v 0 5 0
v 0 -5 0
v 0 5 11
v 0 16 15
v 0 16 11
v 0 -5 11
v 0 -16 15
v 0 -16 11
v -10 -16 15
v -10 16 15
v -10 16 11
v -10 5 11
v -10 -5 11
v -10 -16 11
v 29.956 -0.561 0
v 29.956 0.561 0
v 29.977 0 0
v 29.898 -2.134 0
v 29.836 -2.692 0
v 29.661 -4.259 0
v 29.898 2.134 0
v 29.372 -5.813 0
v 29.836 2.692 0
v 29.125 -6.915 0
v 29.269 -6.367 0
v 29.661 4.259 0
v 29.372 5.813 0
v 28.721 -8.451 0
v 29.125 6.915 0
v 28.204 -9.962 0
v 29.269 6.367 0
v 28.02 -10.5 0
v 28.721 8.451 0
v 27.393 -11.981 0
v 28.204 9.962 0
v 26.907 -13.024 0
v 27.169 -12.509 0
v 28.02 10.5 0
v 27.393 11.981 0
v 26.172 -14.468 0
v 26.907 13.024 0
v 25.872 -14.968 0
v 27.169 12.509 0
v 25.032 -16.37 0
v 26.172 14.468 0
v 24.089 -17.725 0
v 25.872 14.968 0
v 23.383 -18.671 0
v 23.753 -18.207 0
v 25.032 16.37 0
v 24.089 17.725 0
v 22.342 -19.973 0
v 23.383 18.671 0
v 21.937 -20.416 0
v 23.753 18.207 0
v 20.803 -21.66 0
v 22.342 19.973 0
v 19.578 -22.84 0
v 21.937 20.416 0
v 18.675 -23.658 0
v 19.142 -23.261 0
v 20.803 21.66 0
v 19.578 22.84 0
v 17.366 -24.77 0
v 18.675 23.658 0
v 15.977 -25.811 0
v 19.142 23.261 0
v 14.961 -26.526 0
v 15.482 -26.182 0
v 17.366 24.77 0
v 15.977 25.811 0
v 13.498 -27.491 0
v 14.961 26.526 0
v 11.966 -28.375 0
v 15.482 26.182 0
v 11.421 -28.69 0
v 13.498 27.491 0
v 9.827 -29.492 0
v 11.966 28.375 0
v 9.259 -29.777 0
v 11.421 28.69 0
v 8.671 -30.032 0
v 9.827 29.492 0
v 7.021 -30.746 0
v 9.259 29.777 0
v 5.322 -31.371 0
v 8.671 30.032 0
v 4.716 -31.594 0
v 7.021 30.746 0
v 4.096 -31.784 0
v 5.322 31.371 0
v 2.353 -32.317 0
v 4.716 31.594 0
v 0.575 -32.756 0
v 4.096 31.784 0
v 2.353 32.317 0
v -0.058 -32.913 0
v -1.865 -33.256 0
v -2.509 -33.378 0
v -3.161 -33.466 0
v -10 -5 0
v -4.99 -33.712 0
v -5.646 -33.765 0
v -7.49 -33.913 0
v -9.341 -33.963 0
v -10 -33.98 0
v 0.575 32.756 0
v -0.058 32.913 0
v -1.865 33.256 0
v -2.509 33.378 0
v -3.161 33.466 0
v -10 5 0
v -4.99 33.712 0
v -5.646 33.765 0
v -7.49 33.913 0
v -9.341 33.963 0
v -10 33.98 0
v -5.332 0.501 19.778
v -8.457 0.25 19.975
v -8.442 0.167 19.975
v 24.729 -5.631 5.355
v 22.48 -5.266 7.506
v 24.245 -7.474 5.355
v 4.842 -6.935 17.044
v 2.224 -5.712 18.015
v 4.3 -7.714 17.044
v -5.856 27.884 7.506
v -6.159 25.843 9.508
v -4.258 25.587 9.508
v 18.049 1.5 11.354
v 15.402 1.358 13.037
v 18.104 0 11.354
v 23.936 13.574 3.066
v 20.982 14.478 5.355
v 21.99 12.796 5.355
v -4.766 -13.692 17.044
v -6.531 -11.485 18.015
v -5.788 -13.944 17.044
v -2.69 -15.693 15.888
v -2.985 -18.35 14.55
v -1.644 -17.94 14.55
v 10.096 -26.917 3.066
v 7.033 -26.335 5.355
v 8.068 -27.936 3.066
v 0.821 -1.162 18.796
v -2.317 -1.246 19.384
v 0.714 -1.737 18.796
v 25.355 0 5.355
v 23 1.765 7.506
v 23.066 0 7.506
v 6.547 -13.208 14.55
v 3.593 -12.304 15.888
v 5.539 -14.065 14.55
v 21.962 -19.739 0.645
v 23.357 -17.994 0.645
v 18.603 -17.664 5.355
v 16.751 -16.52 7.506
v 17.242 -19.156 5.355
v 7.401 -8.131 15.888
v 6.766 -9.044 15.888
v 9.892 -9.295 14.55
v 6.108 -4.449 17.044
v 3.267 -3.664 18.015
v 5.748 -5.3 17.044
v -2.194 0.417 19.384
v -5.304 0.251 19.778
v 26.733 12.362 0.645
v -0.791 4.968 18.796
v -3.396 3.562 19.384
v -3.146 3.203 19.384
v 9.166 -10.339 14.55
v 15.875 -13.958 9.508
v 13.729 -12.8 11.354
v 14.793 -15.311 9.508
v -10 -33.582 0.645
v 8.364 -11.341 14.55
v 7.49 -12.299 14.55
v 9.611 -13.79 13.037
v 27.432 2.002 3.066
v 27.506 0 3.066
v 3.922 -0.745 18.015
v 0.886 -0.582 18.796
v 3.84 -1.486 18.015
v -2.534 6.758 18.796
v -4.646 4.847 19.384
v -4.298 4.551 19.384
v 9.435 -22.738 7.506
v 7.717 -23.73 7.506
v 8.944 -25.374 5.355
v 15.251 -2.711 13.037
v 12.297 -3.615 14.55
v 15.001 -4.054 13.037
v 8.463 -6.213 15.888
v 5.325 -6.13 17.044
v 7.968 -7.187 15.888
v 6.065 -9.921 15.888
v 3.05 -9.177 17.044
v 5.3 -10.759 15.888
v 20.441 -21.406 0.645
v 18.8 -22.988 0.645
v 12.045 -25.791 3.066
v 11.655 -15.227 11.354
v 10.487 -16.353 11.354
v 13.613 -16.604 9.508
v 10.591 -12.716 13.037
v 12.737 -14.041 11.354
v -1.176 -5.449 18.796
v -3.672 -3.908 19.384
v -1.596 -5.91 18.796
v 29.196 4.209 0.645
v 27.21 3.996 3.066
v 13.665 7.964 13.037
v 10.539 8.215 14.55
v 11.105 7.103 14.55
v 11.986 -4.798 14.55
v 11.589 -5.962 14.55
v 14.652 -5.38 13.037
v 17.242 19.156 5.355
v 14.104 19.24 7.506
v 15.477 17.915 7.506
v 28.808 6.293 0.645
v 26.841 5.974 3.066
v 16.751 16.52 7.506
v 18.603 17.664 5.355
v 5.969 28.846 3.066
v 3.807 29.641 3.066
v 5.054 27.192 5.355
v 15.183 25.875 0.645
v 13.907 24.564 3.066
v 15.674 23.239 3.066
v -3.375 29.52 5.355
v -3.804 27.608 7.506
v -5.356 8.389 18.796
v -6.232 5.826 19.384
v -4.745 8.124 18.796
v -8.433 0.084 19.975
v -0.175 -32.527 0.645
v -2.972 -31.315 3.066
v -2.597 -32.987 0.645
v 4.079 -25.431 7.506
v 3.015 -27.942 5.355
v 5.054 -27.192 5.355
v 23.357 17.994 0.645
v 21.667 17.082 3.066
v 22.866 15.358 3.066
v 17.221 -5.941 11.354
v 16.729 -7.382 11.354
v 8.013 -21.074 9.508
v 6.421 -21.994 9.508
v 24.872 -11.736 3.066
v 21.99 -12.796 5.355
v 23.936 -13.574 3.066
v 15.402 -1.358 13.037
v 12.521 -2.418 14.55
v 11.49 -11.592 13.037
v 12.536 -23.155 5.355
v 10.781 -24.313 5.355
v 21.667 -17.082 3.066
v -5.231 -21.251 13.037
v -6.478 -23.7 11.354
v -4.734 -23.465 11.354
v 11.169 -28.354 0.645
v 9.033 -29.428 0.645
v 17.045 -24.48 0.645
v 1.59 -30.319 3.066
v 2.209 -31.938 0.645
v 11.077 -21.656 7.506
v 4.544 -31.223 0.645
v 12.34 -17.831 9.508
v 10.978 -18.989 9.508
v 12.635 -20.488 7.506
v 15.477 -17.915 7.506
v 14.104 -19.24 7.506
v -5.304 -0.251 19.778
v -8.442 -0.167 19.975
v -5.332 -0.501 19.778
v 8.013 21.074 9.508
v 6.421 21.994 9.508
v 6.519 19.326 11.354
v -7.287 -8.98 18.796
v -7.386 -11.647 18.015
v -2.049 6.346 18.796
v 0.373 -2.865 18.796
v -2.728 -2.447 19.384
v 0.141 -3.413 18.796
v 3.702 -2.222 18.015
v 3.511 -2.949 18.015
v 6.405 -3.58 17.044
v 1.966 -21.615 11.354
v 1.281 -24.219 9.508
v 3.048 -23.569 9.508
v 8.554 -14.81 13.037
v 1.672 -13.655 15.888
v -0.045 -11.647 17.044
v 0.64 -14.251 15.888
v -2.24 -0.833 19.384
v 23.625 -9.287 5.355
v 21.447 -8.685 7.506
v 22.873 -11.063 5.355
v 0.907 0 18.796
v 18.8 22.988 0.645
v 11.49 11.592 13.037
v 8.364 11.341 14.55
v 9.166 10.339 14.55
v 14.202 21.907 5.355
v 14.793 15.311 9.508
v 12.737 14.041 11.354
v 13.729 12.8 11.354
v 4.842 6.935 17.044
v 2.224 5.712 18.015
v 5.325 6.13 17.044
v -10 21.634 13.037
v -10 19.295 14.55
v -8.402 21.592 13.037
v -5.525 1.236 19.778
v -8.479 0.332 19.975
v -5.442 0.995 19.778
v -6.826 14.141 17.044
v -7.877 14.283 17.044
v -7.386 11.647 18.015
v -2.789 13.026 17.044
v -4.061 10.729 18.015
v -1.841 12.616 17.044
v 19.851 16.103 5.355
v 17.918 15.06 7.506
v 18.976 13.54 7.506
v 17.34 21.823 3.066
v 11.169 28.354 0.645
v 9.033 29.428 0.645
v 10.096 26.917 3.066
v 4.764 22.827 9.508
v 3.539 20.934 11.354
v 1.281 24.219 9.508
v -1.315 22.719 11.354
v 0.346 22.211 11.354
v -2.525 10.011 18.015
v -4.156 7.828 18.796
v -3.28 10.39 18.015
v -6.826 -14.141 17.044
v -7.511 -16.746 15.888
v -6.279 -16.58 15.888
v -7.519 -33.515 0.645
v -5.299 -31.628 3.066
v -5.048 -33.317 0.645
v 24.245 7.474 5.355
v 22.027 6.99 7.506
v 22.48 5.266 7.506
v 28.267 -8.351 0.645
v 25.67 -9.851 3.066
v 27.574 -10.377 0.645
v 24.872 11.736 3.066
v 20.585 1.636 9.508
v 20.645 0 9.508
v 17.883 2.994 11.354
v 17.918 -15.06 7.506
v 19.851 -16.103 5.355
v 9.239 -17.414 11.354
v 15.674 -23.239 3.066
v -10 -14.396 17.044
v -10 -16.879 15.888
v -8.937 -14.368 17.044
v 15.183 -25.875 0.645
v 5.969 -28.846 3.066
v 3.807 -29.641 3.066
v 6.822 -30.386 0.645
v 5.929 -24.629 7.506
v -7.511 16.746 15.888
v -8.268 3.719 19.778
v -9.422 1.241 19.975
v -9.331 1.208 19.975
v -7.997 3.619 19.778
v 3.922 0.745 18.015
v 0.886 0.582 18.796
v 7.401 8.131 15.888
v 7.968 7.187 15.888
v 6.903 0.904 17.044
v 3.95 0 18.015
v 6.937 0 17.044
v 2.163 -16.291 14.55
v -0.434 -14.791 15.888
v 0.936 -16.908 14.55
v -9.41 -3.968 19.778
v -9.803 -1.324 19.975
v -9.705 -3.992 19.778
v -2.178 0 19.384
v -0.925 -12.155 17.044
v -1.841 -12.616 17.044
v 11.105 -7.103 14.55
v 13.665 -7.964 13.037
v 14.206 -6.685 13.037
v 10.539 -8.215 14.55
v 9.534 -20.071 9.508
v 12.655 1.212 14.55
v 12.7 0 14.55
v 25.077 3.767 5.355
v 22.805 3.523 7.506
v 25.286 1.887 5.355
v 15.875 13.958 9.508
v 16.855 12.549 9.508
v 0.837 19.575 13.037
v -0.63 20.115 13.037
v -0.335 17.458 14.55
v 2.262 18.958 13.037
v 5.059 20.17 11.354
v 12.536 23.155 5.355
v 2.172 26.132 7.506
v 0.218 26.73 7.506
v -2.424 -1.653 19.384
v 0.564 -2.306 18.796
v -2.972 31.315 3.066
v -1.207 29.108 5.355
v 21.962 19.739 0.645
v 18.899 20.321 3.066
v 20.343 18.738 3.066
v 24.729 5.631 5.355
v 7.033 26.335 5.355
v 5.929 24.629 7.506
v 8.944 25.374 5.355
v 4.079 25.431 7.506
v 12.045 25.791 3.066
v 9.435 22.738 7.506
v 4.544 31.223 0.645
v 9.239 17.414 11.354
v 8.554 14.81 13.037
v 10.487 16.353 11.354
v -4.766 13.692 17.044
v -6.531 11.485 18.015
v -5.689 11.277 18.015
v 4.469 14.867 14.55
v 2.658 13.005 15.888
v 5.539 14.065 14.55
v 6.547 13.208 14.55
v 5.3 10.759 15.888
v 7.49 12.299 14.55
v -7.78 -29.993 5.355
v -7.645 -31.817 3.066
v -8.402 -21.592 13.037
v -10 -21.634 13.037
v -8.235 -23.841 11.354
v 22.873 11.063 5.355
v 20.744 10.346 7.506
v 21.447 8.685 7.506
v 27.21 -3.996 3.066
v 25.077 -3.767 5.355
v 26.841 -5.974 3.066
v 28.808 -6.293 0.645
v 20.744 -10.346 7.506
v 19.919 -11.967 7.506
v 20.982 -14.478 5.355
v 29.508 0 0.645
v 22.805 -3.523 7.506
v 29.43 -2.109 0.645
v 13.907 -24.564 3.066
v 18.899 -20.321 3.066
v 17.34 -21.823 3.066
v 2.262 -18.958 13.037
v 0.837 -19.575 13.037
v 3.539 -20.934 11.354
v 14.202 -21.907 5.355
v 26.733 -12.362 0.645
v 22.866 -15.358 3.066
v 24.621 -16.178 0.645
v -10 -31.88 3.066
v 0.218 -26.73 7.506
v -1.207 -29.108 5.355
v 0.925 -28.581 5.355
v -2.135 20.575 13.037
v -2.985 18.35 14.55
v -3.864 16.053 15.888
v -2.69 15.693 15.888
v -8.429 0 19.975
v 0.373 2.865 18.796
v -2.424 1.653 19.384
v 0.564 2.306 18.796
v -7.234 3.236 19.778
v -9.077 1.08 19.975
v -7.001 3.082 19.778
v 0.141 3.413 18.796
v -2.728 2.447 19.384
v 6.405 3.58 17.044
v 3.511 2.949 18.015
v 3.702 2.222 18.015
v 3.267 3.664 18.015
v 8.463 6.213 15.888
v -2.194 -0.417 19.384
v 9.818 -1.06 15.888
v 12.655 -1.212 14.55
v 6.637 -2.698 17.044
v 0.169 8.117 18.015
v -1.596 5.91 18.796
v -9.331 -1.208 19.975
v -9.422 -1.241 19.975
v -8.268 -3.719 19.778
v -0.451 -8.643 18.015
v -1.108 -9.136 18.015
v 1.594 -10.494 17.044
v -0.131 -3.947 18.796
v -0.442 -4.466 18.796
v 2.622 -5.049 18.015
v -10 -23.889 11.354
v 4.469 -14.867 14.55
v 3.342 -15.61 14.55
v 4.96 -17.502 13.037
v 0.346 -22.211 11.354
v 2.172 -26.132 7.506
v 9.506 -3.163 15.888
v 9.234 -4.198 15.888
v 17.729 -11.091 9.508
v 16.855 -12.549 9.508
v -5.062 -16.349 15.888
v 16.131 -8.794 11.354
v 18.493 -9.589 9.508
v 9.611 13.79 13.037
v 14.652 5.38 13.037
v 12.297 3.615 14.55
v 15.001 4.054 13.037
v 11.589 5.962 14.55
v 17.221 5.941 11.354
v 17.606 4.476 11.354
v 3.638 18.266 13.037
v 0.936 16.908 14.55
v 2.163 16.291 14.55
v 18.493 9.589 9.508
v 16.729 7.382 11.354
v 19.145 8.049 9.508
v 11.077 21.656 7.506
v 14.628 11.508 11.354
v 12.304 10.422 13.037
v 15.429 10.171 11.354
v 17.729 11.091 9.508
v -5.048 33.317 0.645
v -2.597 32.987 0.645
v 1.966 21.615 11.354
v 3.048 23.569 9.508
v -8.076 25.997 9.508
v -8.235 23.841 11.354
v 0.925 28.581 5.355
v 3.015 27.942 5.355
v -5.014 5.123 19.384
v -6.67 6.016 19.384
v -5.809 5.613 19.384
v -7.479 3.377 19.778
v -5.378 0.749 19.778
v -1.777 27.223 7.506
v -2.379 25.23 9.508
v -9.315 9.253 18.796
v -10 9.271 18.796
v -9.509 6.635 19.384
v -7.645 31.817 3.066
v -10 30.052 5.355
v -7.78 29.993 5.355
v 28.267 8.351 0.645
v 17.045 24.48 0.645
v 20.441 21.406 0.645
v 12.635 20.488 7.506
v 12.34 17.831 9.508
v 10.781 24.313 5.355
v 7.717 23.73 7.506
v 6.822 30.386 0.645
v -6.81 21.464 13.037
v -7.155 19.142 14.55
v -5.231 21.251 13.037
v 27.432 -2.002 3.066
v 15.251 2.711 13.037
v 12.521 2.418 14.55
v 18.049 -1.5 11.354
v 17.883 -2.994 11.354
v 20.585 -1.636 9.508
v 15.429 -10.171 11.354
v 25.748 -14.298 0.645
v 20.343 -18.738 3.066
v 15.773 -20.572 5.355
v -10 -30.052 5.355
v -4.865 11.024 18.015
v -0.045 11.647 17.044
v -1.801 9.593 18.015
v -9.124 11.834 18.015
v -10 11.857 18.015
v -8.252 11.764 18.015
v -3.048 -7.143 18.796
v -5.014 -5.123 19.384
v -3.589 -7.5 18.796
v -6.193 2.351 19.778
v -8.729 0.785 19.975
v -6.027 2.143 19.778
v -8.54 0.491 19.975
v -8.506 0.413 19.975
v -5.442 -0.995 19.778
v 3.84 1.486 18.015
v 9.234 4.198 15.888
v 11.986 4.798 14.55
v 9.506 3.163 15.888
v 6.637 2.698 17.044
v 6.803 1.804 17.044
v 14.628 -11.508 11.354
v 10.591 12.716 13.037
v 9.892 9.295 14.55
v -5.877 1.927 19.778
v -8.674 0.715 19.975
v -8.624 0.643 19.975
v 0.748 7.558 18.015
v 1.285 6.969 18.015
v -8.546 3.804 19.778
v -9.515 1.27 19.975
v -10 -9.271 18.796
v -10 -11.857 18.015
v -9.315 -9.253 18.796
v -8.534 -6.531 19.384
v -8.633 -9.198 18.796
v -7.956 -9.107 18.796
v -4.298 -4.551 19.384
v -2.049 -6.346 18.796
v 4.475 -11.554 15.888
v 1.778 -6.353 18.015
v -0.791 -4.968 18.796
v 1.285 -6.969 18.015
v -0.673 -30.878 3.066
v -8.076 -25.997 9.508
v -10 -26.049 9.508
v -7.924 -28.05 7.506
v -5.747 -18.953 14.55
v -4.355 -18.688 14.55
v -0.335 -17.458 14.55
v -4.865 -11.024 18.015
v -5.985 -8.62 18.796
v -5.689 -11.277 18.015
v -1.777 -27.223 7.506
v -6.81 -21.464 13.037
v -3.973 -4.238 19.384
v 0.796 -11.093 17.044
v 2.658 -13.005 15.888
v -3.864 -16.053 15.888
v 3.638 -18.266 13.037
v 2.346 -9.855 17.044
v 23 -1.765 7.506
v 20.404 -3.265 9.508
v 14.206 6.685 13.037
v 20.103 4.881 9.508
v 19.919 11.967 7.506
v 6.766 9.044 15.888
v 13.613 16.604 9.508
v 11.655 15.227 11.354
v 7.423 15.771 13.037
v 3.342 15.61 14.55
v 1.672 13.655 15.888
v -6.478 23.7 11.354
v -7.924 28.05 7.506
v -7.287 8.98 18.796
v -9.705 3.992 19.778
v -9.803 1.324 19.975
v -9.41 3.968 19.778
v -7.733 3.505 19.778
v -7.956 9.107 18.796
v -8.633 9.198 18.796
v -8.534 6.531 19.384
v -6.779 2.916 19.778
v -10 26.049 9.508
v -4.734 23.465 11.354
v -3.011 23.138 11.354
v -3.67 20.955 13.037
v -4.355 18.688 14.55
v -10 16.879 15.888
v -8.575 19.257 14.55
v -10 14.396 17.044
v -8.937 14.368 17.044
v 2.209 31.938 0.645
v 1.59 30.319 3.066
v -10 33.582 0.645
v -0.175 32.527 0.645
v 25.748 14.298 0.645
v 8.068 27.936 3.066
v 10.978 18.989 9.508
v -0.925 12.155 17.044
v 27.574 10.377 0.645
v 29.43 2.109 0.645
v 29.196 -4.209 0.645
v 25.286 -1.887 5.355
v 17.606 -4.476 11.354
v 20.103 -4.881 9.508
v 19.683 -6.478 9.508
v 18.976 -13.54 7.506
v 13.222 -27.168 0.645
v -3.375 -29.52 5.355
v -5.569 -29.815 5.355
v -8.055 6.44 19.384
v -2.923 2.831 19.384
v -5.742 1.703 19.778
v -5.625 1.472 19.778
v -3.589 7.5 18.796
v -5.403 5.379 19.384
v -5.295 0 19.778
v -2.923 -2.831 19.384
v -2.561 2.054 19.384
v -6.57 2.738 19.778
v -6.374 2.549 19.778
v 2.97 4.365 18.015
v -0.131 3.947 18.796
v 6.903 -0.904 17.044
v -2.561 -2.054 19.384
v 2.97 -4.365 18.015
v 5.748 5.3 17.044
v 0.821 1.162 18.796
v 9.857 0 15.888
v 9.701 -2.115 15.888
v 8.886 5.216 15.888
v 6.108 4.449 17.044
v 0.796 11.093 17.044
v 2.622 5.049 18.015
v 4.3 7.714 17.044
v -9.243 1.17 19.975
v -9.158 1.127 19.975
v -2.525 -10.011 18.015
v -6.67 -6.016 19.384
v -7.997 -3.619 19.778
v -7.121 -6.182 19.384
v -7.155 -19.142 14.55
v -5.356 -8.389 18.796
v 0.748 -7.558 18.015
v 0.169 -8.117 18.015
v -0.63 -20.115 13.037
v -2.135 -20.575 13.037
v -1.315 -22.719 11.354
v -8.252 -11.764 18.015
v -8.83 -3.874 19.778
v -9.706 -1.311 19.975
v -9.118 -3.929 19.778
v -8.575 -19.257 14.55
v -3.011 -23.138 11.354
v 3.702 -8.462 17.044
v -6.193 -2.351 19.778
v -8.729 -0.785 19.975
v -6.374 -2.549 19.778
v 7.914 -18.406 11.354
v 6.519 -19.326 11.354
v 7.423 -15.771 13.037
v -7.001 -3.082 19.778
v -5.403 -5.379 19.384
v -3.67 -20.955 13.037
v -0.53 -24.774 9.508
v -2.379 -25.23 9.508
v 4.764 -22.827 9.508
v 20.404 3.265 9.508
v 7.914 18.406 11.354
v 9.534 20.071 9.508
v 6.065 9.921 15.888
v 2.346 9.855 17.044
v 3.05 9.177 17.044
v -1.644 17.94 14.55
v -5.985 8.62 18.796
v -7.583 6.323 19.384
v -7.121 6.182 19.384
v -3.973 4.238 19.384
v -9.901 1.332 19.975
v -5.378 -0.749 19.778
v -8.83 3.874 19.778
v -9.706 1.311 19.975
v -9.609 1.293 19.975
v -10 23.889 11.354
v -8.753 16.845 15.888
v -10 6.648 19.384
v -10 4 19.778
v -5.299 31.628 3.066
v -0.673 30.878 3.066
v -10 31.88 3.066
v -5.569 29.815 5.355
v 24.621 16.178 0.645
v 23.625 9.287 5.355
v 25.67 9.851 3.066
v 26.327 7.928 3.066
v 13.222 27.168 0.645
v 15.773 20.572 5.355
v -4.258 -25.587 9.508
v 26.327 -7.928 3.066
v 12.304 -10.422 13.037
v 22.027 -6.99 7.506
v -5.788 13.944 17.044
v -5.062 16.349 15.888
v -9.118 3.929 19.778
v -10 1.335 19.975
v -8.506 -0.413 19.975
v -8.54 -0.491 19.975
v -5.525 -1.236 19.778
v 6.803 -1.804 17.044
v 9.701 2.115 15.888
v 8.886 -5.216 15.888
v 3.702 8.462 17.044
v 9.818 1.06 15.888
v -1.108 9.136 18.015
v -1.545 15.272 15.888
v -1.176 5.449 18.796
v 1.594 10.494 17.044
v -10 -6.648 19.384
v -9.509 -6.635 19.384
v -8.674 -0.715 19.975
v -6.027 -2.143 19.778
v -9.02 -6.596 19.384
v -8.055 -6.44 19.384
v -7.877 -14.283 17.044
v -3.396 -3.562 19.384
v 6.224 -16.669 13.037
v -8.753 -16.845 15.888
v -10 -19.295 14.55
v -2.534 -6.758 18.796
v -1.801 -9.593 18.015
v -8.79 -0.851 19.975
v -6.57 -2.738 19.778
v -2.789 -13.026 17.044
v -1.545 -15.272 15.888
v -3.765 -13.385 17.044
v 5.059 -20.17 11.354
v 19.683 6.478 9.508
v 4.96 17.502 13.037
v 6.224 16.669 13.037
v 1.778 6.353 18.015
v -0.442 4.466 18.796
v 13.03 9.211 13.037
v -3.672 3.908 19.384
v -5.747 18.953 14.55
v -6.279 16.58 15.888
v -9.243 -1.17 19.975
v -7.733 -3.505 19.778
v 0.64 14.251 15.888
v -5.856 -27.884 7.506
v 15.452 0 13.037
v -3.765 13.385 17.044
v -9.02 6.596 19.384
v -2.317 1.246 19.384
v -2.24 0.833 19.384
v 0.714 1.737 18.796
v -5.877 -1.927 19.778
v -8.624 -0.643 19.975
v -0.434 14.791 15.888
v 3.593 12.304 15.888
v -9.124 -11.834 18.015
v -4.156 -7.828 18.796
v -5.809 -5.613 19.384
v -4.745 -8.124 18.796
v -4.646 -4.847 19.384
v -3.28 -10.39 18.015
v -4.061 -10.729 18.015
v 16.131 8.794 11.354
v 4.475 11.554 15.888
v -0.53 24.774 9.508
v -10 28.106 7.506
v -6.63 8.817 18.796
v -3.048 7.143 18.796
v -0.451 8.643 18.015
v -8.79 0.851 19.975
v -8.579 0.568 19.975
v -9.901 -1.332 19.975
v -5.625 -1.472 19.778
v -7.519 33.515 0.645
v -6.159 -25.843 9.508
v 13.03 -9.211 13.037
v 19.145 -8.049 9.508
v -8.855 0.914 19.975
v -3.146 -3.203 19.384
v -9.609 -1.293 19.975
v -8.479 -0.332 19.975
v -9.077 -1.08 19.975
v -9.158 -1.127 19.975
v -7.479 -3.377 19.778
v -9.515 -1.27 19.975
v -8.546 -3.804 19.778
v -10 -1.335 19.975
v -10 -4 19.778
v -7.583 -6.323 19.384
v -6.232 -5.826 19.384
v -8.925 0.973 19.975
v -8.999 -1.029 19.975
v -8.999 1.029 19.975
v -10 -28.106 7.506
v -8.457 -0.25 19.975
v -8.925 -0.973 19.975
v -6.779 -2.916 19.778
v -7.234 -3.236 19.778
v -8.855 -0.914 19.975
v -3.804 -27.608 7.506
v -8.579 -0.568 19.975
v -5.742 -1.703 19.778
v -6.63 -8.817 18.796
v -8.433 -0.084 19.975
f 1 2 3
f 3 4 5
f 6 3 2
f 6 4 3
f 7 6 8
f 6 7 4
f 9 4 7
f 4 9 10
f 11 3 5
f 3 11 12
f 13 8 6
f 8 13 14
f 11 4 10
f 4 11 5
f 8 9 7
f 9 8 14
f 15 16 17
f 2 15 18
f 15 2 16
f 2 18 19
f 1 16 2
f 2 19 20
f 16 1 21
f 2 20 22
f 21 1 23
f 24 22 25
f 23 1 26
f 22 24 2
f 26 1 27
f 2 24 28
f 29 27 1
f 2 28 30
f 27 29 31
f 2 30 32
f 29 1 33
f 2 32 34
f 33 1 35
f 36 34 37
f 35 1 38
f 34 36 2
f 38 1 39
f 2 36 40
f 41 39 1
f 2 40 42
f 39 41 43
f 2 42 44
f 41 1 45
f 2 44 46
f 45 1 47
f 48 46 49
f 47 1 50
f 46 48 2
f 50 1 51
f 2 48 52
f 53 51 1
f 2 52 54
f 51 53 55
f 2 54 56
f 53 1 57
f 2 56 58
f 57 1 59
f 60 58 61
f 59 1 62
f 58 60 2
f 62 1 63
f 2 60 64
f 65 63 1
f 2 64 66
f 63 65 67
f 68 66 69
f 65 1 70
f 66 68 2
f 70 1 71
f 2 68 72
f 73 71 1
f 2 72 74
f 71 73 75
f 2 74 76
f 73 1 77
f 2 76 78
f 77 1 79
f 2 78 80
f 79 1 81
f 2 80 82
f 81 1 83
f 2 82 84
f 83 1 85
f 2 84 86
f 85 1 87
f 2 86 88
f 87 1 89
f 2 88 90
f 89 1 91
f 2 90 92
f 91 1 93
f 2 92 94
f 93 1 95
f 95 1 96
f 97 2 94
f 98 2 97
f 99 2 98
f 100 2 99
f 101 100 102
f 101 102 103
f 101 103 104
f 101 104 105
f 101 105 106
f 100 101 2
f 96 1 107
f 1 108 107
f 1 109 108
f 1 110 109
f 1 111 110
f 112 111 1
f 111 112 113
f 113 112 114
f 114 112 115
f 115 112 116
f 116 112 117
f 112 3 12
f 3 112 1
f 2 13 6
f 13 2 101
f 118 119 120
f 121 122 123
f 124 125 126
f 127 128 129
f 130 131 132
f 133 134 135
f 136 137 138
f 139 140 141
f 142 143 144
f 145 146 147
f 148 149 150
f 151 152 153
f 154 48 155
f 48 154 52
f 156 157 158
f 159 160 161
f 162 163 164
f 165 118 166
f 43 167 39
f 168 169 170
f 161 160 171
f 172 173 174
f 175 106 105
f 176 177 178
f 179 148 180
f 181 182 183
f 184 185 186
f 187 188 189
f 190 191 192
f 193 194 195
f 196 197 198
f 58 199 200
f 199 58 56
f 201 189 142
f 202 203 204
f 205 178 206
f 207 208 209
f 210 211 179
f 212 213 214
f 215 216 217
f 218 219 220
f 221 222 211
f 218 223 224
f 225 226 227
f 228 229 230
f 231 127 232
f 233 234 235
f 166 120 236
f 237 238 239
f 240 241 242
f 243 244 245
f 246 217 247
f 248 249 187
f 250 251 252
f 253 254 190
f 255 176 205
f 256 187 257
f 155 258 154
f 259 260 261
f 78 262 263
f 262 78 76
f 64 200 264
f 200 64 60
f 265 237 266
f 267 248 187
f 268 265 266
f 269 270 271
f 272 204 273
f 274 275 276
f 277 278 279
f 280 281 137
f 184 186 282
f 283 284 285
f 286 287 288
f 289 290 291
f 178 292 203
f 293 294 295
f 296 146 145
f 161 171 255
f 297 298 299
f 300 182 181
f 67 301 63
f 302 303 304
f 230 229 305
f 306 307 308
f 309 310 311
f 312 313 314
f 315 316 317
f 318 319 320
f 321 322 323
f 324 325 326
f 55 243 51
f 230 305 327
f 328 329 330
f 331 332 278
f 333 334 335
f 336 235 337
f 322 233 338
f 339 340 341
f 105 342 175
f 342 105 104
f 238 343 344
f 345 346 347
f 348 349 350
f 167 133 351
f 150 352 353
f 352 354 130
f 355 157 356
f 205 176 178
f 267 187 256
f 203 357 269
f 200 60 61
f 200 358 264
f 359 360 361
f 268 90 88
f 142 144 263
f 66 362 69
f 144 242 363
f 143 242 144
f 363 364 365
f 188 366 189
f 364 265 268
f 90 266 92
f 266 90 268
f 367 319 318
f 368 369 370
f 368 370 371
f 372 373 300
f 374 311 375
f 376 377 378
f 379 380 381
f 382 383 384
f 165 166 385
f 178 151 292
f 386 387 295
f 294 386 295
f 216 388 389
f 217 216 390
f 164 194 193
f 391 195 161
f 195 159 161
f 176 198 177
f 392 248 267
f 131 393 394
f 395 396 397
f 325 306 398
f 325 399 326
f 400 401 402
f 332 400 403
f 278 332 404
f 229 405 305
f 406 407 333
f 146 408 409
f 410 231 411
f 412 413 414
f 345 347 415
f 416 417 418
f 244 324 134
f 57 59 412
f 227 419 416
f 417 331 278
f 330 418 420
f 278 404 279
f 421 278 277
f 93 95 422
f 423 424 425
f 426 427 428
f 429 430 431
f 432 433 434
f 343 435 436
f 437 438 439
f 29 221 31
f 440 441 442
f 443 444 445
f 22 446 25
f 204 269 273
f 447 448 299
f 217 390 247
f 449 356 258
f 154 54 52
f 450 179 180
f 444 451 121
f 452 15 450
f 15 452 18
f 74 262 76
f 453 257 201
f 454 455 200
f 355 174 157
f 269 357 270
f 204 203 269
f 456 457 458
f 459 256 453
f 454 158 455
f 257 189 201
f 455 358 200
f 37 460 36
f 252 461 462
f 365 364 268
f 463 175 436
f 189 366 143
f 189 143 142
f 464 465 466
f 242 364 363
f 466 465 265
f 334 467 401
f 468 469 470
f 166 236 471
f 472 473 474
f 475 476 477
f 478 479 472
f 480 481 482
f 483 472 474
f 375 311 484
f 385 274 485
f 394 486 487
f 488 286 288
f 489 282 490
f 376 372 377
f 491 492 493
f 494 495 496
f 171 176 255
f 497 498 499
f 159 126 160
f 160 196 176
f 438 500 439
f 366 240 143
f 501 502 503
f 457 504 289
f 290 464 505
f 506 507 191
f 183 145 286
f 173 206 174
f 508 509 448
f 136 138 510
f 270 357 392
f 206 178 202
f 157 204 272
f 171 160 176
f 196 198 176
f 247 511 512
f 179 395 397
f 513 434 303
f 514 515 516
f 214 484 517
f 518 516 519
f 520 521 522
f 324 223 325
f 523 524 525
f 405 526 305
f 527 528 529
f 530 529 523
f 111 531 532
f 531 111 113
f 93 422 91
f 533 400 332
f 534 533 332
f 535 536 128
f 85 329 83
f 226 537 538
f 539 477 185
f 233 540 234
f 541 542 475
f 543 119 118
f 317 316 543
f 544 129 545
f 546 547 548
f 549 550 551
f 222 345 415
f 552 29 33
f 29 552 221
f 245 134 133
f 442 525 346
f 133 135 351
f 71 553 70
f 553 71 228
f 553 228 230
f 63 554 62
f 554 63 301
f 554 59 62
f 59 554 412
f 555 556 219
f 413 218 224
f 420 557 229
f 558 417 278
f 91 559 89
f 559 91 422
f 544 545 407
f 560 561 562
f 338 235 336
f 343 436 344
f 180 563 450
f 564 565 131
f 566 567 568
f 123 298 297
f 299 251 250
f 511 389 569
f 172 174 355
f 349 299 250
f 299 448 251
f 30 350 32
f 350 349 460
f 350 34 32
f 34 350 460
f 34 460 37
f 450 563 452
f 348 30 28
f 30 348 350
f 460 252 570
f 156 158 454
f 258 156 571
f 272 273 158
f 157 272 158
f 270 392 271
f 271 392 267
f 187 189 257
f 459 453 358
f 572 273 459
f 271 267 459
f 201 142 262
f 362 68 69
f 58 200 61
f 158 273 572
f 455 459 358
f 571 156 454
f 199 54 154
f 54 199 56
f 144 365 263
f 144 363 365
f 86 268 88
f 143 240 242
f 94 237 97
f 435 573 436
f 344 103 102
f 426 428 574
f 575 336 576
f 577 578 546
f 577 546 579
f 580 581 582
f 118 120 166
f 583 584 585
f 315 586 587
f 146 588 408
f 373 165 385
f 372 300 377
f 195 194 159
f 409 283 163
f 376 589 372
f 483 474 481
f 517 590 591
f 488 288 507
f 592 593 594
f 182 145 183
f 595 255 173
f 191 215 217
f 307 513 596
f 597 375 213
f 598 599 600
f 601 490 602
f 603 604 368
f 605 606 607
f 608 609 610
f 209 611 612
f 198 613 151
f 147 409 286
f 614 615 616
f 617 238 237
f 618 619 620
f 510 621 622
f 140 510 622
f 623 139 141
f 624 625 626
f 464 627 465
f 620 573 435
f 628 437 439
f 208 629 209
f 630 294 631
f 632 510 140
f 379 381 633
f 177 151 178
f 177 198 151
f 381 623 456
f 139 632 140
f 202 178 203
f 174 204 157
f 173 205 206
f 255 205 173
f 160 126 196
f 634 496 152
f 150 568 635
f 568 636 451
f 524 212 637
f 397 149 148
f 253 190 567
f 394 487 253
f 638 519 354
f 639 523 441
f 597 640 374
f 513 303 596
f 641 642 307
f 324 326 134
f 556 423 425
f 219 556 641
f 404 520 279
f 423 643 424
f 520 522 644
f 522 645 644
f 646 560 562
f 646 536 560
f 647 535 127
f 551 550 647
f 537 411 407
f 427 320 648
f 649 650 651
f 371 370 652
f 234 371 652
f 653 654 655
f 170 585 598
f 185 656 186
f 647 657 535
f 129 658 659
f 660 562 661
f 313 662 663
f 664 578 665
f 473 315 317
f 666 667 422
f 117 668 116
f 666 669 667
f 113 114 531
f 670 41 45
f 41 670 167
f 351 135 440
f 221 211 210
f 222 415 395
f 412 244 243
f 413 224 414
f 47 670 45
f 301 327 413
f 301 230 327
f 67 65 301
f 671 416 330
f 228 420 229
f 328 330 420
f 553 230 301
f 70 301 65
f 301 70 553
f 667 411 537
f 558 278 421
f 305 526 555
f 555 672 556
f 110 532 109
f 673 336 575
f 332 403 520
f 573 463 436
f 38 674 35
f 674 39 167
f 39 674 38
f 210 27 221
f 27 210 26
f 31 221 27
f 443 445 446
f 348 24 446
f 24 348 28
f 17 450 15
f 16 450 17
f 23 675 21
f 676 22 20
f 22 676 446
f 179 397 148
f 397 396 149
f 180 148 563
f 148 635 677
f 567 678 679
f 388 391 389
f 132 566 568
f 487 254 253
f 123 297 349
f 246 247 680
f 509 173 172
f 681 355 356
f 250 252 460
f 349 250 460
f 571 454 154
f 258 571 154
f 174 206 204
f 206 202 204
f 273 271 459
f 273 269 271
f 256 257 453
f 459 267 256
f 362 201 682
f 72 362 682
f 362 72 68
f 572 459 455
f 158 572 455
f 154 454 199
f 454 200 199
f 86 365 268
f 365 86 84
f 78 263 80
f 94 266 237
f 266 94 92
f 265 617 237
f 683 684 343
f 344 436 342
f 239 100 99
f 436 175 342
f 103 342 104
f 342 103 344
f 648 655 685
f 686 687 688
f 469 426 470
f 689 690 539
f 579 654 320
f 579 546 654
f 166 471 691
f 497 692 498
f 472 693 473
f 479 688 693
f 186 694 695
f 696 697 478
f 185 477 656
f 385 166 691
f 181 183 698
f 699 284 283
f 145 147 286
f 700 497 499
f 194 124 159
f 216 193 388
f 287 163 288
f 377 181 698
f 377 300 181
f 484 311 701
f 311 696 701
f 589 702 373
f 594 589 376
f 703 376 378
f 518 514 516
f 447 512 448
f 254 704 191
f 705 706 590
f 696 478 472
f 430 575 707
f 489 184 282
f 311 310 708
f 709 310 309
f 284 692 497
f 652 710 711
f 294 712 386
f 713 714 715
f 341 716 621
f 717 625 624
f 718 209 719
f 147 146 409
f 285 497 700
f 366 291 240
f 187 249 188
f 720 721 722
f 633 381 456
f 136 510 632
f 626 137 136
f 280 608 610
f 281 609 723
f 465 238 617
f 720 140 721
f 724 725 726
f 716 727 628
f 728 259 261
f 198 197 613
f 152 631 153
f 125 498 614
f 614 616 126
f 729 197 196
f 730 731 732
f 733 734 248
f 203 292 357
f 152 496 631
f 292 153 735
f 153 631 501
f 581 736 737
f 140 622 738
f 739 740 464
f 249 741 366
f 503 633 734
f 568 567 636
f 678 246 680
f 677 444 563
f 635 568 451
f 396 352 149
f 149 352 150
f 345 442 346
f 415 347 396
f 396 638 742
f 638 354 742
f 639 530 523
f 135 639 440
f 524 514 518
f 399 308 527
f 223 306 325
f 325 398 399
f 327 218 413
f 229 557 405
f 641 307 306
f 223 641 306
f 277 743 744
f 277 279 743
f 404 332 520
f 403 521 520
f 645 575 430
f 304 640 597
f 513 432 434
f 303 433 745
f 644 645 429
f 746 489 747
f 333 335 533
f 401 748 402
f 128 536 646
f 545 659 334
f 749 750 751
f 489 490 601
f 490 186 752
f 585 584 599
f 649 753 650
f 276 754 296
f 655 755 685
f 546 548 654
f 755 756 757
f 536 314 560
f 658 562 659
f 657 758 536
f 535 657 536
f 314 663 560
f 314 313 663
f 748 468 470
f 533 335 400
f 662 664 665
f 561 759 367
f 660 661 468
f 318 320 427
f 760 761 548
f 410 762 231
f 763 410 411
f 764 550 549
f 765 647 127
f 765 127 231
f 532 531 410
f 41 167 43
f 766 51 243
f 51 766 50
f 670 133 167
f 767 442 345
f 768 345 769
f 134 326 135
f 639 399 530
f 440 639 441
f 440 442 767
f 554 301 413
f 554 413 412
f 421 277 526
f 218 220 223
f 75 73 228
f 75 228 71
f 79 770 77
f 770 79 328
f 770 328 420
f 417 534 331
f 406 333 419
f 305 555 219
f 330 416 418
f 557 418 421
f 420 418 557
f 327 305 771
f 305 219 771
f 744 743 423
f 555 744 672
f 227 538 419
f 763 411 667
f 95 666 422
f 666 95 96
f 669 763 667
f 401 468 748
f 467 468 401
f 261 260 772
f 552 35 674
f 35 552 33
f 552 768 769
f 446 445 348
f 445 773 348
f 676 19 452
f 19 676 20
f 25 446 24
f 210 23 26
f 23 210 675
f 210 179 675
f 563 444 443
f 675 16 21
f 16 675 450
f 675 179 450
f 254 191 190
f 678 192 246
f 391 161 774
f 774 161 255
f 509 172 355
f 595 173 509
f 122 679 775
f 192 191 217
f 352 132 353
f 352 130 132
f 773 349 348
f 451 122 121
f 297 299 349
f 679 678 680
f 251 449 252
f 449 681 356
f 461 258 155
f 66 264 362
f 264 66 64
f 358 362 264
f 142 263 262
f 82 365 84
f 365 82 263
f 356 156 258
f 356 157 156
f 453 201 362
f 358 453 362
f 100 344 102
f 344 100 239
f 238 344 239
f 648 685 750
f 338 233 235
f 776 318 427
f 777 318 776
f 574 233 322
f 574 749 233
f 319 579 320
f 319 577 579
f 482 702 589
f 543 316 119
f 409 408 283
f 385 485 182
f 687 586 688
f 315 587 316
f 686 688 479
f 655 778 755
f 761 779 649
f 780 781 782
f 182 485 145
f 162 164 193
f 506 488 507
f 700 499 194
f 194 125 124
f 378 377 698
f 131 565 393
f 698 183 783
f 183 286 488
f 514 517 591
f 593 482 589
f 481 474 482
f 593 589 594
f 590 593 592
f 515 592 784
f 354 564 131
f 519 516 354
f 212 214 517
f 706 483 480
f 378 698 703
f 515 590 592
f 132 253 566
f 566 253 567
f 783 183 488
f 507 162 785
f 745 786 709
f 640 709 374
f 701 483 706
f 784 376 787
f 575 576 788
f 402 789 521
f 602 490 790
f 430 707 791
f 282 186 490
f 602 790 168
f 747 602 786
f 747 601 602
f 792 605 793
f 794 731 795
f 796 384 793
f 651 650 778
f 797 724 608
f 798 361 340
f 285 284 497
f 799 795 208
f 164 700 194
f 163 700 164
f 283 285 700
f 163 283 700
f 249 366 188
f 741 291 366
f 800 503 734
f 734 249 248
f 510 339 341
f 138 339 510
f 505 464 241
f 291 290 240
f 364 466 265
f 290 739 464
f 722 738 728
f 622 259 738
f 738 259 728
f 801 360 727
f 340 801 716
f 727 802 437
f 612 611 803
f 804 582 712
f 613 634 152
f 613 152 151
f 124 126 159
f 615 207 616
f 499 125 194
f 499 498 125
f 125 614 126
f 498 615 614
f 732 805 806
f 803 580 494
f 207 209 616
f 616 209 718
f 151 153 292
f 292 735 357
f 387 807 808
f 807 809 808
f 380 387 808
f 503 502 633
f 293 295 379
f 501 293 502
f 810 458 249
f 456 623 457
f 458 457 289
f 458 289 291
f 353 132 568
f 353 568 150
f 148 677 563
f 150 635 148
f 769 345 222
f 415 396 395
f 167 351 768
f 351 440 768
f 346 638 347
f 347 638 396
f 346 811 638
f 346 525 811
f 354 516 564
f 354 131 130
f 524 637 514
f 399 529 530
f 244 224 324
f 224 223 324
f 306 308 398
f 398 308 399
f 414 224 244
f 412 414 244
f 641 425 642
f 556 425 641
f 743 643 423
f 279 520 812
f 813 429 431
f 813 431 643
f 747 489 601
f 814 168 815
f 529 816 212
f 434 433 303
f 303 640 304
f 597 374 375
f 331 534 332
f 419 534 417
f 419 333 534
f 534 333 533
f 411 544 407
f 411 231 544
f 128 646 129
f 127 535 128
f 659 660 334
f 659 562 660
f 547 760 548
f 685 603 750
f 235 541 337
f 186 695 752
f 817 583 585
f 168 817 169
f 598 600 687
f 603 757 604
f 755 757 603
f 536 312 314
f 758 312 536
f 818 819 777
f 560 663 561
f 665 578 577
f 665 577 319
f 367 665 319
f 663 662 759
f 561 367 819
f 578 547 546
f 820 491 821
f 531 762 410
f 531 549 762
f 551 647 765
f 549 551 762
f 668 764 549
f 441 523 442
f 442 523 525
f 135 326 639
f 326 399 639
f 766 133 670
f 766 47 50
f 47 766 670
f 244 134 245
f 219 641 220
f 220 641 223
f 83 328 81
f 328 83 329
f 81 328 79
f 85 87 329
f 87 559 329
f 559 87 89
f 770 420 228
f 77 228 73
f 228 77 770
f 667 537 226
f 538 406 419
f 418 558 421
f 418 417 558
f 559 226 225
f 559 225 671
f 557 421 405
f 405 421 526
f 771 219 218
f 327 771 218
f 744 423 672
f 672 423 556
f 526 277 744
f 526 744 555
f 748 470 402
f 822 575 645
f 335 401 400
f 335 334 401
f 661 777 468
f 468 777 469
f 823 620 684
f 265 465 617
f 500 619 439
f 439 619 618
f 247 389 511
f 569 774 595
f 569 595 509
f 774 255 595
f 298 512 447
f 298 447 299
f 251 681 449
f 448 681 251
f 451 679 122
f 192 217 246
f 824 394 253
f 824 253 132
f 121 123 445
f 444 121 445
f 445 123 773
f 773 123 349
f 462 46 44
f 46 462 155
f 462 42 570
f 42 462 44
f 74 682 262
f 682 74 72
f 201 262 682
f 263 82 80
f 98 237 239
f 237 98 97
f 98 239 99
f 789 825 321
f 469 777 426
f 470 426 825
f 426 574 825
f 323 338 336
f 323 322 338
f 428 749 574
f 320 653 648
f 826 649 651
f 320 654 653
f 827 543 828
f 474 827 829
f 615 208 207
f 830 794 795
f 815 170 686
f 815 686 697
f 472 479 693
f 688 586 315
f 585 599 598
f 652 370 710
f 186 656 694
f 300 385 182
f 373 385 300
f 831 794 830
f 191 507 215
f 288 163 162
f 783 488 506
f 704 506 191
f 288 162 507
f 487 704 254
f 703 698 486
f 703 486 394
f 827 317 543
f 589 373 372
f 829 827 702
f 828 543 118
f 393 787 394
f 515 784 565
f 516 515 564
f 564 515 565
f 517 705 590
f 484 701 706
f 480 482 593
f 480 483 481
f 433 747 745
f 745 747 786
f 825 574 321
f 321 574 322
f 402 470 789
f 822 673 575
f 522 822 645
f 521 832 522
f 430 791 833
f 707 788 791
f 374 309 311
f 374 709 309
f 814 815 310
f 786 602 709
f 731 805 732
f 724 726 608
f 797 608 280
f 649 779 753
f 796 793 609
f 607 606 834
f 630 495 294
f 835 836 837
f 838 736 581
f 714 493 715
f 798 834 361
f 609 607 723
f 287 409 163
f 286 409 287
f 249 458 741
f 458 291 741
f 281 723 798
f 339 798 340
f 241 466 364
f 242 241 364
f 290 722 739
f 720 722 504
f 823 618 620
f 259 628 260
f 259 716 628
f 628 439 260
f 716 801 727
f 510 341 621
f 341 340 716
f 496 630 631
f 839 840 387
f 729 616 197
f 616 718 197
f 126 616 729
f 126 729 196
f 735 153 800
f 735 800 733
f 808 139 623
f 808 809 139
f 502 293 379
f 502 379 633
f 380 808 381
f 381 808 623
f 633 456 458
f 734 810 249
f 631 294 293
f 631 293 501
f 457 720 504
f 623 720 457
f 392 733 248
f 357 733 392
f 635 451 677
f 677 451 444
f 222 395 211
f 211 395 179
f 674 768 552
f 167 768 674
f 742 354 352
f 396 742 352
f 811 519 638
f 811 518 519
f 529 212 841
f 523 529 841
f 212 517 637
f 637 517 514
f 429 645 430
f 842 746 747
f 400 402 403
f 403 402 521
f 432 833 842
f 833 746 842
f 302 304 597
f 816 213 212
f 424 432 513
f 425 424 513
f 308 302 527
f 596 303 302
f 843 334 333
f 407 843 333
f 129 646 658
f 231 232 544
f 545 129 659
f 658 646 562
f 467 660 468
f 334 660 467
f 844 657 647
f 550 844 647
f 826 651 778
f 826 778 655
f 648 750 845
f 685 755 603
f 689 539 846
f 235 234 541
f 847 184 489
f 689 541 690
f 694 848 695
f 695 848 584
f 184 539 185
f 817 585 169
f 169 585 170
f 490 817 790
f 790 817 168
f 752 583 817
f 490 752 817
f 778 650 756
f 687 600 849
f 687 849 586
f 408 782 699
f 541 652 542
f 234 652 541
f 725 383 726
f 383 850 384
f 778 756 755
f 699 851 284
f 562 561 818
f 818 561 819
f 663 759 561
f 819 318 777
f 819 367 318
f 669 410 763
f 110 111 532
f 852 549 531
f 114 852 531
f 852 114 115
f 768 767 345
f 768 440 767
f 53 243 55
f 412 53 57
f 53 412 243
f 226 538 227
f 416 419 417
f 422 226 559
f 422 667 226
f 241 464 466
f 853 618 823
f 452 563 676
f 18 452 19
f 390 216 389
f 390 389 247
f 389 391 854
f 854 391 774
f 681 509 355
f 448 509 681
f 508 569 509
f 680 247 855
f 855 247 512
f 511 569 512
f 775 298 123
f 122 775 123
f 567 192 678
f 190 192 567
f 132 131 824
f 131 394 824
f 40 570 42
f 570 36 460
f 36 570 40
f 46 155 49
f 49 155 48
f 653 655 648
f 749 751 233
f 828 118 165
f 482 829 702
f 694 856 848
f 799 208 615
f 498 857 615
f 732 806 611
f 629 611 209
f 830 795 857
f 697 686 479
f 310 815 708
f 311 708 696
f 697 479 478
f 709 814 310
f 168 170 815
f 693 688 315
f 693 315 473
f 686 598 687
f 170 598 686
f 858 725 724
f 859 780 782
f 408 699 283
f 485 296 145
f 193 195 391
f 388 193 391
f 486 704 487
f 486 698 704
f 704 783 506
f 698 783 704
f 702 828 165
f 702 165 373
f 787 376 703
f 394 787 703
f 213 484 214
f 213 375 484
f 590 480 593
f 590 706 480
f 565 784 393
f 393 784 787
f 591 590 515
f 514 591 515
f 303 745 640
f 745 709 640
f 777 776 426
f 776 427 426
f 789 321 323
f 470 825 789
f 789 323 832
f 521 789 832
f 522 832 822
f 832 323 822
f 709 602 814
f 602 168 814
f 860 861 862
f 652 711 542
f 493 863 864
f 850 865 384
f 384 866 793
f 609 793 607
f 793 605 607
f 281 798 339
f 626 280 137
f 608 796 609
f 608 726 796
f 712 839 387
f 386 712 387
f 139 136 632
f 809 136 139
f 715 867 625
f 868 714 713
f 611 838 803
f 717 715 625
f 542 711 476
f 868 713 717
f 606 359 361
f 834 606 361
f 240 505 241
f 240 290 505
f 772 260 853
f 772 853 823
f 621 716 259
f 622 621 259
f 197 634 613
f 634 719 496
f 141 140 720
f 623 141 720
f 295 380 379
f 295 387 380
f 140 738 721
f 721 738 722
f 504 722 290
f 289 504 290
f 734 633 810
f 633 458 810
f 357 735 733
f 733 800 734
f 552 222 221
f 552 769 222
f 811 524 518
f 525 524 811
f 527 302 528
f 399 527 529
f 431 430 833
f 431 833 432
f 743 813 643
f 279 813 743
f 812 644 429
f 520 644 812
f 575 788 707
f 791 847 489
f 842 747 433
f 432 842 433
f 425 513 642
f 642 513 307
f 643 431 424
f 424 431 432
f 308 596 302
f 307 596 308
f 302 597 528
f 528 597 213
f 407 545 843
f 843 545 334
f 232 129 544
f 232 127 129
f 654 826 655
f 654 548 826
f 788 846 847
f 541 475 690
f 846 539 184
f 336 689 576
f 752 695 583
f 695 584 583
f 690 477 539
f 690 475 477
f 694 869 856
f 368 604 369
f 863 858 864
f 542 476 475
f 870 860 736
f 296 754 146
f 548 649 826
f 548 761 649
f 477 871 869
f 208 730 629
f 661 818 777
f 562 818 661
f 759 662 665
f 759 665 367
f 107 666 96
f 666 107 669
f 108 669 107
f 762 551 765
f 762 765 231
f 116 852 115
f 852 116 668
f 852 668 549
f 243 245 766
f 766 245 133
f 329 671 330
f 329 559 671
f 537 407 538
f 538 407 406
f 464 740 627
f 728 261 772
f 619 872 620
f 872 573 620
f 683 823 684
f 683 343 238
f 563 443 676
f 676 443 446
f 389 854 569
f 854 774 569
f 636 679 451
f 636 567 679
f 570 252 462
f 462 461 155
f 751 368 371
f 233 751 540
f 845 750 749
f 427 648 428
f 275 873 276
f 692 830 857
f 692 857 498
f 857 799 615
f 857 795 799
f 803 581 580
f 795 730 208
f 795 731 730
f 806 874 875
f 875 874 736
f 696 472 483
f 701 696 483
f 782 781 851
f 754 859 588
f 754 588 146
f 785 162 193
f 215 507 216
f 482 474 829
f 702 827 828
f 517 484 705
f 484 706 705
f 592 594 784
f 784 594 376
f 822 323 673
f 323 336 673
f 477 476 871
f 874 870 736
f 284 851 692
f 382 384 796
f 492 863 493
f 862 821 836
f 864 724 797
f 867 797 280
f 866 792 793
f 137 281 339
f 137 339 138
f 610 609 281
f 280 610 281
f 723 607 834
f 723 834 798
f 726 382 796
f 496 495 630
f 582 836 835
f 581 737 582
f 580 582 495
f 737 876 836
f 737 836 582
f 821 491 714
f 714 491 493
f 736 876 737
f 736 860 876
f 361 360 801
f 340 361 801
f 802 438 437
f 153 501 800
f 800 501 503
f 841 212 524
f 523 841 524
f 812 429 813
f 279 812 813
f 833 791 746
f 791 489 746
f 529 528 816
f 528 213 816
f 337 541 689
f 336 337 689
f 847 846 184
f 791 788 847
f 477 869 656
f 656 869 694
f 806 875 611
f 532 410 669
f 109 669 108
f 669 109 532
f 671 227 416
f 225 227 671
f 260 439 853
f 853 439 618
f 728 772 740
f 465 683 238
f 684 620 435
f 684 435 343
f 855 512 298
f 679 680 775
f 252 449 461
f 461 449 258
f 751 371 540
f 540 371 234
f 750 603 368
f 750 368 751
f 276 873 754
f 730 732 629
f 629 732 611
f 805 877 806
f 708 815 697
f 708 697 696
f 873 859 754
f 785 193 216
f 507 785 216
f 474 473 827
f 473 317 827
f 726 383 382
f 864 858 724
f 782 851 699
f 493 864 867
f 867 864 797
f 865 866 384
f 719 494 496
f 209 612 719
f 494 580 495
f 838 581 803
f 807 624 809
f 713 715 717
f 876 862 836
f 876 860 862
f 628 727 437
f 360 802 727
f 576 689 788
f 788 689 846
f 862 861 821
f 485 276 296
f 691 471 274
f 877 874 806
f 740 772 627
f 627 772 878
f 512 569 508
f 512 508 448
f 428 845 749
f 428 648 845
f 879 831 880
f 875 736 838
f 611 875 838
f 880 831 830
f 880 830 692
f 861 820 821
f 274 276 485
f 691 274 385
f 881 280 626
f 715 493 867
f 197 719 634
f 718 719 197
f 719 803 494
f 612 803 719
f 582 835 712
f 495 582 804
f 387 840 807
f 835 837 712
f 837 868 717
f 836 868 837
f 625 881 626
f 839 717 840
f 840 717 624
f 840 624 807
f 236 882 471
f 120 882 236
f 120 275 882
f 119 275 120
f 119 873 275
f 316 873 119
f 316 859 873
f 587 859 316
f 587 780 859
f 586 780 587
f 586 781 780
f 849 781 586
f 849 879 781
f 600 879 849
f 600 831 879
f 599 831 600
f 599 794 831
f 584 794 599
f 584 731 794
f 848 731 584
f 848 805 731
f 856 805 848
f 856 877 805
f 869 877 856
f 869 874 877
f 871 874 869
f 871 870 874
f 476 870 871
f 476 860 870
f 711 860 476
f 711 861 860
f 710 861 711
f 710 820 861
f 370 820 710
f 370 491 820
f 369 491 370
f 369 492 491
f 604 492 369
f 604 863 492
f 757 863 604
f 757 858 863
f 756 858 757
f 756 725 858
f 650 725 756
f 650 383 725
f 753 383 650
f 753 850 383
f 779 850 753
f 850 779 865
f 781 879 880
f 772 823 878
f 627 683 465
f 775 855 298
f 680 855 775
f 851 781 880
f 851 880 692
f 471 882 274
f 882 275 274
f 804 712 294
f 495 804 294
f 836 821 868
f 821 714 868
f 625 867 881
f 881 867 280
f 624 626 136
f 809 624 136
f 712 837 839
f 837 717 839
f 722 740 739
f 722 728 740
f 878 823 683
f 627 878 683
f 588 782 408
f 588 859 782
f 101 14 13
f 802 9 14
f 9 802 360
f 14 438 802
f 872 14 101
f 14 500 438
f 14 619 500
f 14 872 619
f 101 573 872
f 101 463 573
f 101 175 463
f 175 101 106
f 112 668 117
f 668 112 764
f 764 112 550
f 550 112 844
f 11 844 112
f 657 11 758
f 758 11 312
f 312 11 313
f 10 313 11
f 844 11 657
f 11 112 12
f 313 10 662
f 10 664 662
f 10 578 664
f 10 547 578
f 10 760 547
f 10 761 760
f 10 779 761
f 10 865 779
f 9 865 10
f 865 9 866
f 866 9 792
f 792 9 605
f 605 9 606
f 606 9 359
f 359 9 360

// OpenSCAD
/*
 * Embout de rail (Pordin-Nancq)
 * With a sphere. with scale (=> rugby ball shape)
 */

// Globals rail
top_thickness = 4;
bottom_thickness = 11;
top_width = 32;
bottom_width = 10; // TODO Check that

module rail(length) {
  union() {
    // Top
    translate([0, 0, (bottom_thickness + (top_thickness / 2))]) {
        cube(size = [length, top_width, top_thickness], center = true);
    }
    // Bottom
    translate([0, 0, bottom_thickness / 2]) {
        cube(size = [length, bottom_width, bottom_thickness], center = true);
    }
  }
}

module the_stuff(sphere_diam, thickness) {
  difference() {
    scale([1, 0.85, 1]) { // Rugby ball shape !
      sphere(d = sphere_diam / 1.0, $fn=100);
    }
    // Left-right screen
    translate([(-sphere_diam / 2), 0, 0]) {
      cube(size=[sphere_diam, sphere_diam, sphere_diam], center=true);
    }
    // Top-bottom screen
    translate([0, 0, - thickness]) {
      cube(size=[sphere_diam, sphere_diam, sphere_diam], center=true);
    }
  }
}

rail_length = 100;
sphere_diam = 100;
on_top = 5;
inside = 10;
  
difference() {

  translate([-inside, 0, (- sphere_diam / 2) + (top_thickness + bottom_thickness) + on_top ]) {
    the_stuff(sphere_diam, (top_thickness + bottom_thickness) + on_top);
  }

  translate ([-(rail_length / 2), 0, 0]) {
    rail(rail_length);
  }
}
